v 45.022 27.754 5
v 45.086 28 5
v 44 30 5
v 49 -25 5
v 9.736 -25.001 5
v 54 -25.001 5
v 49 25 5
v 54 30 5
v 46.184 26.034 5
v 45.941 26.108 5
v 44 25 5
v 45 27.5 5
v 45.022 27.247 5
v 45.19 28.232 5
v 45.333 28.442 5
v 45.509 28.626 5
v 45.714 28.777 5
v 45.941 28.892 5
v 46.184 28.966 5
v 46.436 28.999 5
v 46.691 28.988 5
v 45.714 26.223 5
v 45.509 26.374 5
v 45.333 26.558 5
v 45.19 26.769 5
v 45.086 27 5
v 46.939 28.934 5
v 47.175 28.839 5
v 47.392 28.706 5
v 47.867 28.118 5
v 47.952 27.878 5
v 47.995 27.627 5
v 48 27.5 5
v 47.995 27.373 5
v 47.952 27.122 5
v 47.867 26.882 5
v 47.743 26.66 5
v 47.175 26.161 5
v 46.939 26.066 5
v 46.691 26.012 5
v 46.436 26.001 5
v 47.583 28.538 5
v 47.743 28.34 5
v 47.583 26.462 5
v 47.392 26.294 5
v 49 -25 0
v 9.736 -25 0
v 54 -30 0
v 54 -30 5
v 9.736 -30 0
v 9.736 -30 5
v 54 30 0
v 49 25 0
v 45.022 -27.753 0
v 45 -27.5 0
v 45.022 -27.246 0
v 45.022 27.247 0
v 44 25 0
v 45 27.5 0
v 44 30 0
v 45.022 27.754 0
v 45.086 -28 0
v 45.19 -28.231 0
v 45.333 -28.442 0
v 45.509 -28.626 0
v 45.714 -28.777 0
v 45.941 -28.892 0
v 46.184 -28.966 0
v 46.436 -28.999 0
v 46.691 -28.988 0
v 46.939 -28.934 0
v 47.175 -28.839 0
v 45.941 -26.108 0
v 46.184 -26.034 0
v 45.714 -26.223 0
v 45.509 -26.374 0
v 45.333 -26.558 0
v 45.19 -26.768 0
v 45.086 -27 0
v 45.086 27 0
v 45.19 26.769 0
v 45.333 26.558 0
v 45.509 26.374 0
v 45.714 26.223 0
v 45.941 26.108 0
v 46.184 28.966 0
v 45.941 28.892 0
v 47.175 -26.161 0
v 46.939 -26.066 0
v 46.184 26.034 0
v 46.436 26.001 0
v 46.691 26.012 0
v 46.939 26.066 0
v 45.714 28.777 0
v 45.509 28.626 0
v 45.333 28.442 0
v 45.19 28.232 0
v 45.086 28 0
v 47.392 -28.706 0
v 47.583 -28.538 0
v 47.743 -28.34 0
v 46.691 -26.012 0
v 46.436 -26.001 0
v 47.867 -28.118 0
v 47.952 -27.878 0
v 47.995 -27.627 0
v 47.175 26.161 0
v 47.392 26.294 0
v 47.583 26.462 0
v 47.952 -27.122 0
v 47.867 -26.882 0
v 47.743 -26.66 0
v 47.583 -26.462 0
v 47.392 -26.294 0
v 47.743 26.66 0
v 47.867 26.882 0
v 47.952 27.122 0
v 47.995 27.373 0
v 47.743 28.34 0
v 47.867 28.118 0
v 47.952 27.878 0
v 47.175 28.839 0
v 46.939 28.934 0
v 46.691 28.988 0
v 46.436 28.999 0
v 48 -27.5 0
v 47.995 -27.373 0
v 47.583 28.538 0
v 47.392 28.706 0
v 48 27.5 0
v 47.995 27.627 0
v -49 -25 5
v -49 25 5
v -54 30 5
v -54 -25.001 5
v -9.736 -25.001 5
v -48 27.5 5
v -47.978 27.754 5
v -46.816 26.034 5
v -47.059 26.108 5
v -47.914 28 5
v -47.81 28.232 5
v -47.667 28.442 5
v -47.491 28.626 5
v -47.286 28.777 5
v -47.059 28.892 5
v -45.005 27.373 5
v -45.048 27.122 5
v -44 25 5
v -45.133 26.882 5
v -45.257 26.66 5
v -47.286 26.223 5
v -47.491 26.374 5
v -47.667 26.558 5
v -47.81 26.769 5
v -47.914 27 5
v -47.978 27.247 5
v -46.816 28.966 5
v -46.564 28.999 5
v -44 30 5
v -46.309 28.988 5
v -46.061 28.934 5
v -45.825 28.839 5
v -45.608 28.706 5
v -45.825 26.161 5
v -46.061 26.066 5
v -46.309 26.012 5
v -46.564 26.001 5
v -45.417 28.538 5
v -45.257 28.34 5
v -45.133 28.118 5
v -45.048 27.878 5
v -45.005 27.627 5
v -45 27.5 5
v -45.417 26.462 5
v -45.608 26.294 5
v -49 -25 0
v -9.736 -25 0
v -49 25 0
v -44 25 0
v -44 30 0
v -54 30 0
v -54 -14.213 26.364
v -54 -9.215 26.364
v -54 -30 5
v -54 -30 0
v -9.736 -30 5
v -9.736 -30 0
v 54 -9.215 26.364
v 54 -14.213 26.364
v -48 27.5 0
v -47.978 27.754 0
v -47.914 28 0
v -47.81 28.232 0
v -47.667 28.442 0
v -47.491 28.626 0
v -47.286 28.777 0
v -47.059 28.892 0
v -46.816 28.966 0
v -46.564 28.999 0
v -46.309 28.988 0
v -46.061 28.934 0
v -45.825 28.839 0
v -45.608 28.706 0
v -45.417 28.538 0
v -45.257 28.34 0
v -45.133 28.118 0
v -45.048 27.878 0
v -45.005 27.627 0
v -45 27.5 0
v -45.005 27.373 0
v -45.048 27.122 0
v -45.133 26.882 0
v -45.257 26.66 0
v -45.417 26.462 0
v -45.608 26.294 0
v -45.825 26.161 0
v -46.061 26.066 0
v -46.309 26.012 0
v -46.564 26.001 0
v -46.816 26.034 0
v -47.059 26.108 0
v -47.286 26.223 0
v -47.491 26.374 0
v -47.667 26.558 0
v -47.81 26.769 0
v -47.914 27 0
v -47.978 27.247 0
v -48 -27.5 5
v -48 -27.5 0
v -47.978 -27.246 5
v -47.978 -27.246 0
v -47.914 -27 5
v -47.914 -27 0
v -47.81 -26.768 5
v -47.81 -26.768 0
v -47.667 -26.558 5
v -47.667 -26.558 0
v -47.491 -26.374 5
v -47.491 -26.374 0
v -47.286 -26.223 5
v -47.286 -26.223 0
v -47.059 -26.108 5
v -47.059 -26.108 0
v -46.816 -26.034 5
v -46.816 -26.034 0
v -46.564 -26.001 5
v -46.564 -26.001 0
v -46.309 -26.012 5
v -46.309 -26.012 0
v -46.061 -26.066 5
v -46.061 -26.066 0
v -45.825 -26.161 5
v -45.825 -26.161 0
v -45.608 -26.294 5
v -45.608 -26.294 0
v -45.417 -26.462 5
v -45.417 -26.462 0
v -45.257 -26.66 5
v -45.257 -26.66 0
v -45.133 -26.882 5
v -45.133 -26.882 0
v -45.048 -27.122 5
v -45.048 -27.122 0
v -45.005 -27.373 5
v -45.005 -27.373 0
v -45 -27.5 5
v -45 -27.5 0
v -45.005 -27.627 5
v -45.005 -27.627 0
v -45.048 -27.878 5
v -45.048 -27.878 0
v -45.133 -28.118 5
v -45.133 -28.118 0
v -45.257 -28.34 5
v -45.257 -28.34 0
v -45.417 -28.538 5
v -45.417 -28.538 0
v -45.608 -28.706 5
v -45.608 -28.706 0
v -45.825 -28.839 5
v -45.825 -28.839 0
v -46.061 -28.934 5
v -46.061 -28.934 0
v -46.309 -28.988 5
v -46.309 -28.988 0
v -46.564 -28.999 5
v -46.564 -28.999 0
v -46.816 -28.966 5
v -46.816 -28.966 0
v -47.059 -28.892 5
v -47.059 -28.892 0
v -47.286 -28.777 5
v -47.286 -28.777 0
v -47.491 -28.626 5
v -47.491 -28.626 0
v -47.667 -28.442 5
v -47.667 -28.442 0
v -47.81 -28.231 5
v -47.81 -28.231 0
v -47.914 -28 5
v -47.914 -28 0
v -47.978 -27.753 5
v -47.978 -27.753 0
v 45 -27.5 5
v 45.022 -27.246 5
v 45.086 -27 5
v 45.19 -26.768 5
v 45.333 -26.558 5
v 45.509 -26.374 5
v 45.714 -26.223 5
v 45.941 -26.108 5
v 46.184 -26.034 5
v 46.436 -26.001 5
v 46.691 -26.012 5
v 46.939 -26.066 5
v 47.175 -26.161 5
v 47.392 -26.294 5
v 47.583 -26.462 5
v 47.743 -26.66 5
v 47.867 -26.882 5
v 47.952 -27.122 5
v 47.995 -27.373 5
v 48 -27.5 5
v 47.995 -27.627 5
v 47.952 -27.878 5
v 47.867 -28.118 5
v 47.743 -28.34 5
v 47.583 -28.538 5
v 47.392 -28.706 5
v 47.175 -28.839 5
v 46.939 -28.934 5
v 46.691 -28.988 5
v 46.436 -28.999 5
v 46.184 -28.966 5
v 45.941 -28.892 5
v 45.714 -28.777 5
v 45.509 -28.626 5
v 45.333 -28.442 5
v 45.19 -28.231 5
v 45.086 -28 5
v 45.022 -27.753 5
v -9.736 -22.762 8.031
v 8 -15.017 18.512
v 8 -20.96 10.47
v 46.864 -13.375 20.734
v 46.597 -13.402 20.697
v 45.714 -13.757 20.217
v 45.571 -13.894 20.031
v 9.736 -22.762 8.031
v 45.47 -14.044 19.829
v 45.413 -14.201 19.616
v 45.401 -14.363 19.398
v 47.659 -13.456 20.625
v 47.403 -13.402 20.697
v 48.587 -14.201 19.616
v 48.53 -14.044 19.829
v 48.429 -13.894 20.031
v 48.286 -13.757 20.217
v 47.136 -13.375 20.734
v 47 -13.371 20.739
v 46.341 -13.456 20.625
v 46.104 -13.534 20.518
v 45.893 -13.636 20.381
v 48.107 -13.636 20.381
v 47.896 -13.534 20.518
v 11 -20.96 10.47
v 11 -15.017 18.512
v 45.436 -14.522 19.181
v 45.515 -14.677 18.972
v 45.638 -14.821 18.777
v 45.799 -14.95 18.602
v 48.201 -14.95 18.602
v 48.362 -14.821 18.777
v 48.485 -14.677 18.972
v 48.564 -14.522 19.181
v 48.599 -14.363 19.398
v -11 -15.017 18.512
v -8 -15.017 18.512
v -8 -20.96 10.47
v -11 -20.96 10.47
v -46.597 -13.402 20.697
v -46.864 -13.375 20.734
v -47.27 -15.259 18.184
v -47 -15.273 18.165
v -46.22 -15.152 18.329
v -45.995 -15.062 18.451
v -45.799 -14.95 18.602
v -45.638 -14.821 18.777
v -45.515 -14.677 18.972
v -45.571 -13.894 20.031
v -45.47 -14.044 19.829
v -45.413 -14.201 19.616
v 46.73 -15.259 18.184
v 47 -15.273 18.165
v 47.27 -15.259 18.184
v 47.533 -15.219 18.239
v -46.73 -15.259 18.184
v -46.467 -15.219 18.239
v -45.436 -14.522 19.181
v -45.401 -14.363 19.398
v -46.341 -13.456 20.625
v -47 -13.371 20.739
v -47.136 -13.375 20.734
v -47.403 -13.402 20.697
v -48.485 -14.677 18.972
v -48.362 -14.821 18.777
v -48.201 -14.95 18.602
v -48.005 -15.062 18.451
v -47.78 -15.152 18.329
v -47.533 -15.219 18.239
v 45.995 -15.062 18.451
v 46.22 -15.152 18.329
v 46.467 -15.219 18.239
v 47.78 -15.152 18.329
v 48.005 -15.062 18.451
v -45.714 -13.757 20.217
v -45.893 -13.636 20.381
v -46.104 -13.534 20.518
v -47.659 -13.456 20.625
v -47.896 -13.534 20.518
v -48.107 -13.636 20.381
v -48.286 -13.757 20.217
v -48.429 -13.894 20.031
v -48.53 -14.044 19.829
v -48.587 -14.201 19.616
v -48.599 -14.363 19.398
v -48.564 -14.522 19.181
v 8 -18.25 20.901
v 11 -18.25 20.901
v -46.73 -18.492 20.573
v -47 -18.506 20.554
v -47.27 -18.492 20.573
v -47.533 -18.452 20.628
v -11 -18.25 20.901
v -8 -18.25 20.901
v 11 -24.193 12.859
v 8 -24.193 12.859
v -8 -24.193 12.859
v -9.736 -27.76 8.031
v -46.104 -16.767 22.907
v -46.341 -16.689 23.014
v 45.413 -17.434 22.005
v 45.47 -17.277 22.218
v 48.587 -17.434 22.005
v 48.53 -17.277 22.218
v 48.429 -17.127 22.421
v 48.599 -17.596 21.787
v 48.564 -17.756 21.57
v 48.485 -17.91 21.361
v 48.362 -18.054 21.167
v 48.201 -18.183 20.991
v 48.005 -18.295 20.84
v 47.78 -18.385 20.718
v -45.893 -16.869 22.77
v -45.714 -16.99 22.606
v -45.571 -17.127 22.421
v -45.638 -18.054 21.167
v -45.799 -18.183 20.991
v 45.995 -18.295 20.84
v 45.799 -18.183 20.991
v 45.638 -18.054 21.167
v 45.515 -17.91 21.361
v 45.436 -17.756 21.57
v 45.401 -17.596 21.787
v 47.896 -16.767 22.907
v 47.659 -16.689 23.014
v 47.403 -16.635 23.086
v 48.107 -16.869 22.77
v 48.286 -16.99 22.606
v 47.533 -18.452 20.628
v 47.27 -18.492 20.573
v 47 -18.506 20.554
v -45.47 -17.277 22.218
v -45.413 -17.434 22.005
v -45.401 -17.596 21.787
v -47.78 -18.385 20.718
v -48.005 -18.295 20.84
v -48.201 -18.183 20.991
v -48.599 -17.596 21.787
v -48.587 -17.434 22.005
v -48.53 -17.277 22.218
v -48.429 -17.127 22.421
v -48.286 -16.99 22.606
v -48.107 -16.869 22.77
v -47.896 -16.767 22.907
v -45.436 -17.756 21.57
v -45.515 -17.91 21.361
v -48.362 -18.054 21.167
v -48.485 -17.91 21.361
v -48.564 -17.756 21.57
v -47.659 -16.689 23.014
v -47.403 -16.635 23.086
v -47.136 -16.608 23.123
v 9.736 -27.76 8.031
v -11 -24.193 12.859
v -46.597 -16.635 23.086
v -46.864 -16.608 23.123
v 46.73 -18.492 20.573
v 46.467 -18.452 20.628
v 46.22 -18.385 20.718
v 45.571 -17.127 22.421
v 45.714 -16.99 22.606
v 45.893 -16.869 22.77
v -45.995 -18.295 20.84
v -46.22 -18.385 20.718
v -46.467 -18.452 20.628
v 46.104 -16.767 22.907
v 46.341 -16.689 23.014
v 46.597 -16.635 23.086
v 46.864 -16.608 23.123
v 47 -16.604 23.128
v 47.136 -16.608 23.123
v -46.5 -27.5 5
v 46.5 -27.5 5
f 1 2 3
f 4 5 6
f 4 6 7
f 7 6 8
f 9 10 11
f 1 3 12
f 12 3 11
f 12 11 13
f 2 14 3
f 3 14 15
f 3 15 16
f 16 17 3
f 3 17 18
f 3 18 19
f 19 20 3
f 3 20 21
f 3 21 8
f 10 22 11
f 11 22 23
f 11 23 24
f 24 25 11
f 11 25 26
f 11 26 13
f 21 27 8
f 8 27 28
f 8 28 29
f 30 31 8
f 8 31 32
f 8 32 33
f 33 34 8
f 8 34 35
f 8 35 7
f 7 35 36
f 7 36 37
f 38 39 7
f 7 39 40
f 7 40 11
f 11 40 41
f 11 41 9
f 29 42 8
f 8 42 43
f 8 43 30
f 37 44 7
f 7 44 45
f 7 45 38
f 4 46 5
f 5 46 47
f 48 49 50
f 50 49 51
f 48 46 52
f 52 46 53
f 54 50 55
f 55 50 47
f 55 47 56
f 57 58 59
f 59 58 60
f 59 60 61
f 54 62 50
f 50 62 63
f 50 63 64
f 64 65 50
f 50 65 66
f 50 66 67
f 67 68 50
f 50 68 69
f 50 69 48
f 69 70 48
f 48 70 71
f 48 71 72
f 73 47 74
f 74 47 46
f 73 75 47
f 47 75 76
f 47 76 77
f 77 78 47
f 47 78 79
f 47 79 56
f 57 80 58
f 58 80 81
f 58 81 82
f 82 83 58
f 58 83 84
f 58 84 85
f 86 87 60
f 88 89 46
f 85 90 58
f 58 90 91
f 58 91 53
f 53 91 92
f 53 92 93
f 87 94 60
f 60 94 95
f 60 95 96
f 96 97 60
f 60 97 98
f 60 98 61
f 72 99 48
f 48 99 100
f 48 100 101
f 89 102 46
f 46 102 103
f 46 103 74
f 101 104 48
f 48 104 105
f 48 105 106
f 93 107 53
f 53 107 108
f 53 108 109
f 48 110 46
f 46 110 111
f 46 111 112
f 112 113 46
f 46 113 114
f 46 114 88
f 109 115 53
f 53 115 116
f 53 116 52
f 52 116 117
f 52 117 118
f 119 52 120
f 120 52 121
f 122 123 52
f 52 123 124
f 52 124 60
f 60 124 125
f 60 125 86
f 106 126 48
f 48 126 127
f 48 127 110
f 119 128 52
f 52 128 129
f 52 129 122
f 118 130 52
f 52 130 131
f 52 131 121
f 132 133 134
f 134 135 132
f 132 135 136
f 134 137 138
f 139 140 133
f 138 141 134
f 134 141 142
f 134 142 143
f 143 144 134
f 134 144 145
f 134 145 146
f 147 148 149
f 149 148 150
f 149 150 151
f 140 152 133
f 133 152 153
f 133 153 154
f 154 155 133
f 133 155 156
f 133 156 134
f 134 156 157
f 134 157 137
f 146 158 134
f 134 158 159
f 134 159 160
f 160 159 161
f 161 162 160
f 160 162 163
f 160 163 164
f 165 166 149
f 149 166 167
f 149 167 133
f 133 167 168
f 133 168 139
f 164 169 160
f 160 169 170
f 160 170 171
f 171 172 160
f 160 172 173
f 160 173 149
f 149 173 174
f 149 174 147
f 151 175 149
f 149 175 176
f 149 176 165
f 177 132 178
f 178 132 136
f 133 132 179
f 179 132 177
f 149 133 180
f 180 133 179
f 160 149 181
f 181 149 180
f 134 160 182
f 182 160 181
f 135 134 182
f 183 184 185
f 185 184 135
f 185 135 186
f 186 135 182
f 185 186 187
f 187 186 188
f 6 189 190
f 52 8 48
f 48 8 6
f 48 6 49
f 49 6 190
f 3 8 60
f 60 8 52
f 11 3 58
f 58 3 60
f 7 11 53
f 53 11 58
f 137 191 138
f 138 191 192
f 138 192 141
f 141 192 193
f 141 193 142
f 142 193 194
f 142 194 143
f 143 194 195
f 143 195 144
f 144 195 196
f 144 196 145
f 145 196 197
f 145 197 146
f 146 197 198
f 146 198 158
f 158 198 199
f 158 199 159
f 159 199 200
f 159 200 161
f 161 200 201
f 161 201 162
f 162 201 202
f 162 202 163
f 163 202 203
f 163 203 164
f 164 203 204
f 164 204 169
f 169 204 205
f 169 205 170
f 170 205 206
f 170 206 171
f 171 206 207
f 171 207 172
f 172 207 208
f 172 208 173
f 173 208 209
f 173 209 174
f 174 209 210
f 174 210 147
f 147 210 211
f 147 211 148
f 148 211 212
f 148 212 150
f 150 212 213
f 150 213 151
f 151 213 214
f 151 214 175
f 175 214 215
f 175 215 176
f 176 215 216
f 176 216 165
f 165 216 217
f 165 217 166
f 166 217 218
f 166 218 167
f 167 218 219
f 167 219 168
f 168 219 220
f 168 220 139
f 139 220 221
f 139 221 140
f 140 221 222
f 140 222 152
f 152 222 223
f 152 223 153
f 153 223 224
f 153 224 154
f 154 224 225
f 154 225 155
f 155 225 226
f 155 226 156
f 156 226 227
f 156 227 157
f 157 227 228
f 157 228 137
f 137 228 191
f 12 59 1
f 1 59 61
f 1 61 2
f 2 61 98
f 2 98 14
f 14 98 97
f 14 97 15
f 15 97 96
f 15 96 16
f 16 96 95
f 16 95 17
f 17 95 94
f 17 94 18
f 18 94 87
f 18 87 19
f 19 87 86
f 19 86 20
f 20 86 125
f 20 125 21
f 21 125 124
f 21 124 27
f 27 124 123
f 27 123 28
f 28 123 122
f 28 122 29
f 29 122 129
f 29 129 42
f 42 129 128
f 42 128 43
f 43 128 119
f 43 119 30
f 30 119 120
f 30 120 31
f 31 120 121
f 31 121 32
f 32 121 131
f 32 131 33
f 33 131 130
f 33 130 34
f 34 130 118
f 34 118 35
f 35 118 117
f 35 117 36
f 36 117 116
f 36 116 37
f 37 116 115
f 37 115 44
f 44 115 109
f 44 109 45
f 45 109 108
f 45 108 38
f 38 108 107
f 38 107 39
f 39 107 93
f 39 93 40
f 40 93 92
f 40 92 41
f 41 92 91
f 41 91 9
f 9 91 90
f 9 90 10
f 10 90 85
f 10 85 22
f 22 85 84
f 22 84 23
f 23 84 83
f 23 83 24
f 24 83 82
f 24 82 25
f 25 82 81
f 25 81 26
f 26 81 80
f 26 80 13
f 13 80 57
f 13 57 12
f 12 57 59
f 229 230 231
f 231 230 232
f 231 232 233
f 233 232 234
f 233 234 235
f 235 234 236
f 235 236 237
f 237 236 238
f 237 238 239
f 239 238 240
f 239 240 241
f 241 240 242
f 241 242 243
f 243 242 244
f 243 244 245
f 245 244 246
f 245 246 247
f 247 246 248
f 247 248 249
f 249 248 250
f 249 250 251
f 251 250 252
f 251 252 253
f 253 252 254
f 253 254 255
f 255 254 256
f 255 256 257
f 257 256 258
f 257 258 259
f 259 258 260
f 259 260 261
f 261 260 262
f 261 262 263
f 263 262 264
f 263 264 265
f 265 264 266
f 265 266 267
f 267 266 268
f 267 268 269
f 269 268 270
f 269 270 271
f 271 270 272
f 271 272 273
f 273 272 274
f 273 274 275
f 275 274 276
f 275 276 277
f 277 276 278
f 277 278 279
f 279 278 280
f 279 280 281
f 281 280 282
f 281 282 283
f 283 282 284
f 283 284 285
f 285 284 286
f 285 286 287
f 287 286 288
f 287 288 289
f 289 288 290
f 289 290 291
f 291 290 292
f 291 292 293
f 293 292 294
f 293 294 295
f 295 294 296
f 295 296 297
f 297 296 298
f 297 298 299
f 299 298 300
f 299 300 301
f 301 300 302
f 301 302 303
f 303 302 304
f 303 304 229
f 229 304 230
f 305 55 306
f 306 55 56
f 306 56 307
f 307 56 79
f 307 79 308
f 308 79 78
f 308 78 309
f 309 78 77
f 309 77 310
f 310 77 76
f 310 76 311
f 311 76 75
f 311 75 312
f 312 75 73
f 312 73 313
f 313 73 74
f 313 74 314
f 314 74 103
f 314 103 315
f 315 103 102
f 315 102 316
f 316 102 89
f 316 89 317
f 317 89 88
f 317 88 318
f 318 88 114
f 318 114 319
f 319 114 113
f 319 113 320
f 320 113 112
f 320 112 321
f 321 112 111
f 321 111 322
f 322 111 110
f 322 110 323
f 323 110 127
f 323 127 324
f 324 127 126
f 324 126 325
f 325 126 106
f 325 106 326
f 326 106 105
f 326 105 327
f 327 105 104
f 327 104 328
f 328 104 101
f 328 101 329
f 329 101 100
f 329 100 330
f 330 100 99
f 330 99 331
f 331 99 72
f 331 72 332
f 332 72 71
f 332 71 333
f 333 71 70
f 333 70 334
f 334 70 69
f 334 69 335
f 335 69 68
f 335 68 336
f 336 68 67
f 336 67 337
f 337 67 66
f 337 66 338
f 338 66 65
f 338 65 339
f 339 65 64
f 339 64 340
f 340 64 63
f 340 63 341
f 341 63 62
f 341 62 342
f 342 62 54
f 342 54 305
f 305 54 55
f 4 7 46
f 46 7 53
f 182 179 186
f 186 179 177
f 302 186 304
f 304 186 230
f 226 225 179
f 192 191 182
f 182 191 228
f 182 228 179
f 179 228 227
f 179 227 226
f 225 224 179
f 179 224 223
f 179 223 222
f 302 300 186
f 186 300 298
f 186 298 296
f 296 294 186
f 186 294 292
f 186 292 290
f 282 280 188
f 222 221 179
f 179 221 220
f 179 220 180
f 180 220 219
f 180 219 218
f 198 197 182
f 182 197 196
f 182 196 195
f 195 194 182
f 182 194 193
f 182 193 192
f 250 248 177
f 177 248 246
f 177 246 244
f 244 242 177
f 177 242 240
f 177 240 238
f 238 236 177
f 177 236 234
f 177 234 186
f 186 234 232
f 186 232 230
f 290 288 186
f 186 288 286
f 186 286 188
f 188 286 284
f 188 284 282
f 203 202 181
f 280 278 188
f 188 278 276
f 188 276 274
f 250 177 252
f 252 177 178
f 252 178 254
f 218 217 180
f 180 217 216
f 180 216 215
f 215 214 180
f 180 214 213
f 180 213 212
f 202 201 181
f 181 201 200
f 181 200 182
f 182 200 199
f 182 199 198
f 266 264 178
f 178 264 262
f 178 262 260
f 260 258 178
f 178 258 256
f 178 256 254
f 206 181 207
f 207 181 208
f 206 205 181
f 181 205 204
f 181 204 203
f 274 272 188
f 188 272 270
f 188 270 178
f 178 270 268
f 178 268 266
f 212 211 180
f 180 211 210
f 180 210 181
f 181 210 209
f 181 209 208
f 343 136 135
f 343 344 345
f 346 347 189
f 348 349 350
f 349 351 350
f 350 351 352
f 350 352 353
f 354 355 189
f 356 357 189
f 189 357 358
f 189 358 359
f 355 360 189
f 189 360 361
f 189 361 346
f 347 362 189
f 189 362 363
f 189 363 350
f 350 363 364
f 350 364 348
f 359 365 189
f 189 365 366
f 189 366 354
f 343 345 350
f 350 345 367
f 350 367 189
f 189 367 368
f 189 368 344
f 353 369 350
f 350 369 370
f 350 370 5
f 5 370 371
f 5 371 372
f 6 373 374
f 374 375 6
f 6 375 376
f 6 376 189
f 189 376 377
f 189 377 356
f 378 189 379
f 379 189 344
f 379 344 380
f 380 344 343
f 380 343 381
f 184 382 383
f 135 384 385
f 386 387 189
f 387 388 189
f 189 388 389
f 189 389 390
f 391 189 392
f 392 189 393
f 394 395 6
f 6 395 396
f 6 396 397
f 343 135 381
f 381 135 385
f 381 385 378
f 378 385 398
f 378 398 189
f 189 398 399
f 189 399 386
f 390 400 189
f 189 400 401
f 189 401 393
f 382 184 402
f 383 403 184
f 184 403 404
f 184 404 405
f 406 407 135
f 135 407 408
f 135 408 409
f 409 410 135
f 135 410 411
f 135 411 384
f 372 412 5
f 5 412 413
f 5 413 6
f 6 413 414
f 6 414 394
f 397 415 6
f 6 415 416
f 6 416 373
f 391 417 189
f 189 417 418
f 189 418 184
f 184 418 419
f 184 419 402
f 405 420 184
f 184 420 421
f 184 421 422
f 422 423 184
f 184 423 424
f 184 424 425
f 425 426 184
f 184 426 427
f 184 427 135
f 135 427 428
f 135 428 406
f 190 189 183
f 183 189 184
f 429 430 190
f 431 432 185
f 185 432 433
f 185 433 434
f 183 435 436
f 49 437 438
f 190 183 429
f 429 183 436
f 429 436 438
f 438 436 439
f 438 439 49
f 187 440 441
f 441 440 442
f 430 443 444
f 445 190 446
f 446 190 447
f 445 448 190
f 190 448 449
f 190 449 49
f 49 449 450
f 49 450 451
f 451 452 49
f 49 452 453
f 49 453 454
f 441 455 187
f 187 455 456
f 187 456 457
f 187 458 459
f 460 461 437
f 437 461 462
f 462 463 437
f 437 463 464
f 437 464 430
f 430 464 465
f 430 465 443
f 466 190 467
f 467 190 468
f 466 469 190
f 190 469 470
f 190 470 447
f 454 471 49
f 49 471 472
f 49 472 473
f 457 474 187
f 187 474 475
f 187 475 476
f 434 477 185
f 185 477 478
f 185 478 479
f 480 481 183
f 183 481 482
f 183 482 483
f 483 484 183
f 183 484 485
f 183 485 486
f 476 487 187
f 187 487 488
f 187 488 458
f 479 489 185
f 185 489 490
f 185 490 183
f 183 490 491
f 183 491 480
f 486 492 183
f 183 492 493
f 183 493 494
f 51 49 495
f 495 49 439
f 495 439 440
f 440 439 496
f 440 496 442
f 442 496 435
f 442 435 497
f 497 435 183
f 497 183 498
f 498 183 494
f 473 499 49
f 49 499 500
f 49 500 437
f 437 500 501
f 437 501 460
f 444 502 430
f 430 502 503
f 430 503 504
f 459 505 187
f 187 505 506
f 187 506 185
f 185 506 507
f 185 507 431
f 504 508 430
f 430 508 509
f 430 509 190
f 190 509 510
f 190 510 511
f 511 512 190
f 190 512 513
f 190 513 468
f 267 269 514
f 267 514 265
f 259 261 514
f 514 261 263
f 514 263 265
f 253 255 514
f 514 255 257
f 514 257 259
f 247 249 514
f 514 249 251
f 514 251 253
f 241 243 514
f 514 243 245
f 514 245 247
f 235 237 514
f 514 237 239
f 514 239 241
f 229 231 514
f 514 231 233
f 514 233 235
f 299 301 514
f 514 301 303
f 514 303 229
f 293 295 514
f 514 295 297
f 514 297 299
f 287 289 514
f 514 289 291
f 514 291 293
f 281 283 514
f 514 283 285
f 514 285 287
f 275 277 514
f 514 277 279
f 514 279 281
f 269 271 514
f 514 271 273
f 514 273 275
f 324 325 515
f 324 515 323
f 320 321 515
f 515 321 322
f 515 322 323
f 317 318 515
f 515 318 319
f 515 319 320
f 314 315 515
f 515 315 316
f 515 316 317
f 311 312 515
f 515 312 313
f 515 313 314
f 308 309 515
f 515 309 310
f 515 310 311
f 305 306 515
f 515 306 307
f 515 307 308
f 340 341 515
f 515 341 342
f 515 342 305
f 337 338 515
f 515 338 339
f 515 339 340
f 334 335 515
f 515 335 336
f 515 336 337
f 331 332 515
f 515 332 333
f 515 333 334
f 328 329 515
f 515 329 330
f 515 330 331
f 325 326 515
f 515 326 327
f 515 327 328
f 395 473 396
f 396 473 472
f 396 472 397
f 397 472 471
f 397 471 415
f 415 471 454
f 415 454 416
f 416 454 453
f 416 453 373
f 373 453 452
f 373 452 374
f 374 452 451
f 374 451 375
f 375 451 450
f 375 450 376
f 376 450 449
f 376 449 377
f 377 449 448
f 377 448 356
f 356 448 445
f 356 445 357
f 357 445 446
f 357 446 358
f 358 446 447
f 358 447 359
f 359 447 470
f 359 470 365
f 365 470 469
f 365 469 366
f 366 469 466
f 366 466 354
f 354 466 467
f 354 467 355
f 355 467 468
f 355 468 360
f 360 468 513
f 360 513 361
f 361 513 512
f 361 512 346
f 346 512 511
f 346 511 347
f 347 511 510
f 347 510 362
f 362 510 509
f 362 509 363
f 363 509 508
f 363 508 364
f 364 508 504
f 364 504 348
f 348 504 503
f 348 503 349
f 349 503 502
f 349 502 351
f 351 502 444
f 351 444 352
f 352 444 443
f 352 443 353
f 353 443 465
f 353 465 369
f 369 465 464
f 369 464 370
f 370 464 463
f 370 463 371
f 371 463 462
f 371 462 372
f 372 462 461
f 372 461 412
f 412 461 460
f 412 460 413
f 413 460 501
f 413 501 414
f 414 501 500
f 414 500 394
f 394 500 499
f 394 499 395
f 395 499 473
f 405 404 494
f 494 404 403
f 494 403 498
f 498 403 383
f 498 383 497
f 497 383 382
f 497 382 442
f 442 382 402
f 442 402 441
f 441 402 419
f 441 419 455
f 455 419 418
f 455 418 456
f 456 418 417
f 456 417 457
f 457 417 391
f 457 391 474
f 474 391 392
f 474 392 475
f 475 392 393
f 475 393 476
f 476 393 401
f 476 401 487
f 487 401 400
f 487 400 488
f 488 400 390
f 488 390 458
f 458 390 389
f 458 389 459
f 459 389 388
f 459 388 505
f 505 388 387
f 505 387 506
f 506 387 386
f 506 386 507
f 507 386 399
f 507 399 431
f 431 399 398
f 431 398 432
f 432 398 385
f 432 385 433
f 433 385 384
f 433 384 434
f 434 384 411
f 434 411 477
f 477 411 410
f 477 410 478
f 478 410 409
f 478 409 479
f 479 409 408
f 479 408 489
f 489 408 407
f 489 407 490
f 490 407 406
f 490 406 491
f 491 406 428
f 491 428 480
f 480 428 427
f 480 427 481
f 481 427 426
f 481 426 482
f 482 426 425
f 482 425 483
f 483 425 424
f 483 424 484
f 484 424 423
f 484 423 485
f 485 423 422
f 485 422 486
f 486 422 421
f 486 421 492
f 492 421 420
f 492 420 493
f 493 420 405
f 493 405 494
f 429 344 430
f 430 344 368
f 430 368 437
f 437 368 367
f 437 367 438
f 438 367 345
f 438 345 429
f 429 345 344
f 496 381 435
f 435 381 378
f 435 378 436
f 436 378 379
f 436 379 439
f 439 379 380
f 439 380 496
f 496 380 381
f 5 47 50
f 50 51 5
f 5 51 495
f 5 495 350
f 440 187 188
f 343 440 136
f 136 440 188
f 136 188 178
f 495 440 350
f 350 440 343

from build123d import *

# Parameters (mm, degrees)
SKETCH3_R           = 1.5
BOSS_EXTRUDE2_DEPTH = 5
BOSS_EXTRUDE3_DEPTH = 108
CUT_EXTRUDE1_REACH  = 53.226
SKETCH5_R           = 1.6
CUT_EXTRUDE2_REACH  = 53.226
SKETCH6_W           = 3
SKETCH6_H           = 10
SKETCH7_W           = 19.472559222
SKETCH7_H           = 21.170747527
CUT_EXTRUDE3_DEPTH  = 61


with BuildPart() as part:
    # Sketch3 → Boss-Extrude2 (new body)
    with BuildSketch(Plane.XY):
        Polygon((-49, 25), (-44, 25), (-44, 30), (-49, 30), (-54, 30), (-54, 25), (-54, -25), (-54, -30), (-49, -30), (-44, -30), (44, -30), (49, -30), (54, -30), (54, -25), (54, 25), (54, 30), (49, 30), (44, 30), (44, 25), (49, 25), (49, -25), (44, -25), (-44, -25), (-49, -25), align=None)
        with BuildLine():
            ThreePointArc((-46.5, -26), (-45.439339828, -26.439339828), (-45, -27.5))
            ThreePointArc((-45, -27.5), (-47.560660172, -28.560660172), (-46.5, -26))
        make_face(mode=Mode.SUBTRACT)
        with Locations((46.5, -27.5)):
            Circle(SKETCH3_R, mode=Mode.SUBTRACT)
        with BuildLine():
            ThreePointArc((-45, 27.5), (-45.439339828, 26.439339828), (-46.5, 26))
            ThreePointArc((-46.5, 26), (-47.560660172, 28.560660172), (-45, 27.5))
        make_face(mode=Mode.SUBTRACT)
        with Locations((46.5, 27.5)):
            Circle(SKETCH3_R, mode=Mode.SUBTRACT)
    extrude(amount=BOSS_EXTRUDE2_DEPTH)

    # Sketch4 → Boss-Extrude3 (add)
    with BuildSketch(Plane(origin=(54, 0, 0), x_dir=(0, 0, -1), z_dir=(1, 0, 0))):
        Polygon((-5, -30), (-5, -25.001535135), (-26.363936199, -9.214733726), (-26.363936199, -14.213198591), align=None)
    extrude(amount=-BOSS_EXTRUDE3_DEPTH)

    # Sketch5 → Cut-Extrude1 (cut, up to next)
    with BuildSketch(Plane(origin=(0, -21.794194287, 16.104739027), x_dir=(-1, 0, 0), z_dir=(0, -0.804246926, 0.594295282)), mode=Mode.PRIVATE) as cut_extrude1_sk1:
        with Locations((47, -7.13269846)):
            Circle(SKETCH5_R)
    cut_extrude1_tool1 = extrude(cut_extrude1_sk1.sketch, amount=-CUT_EXTRUDE1_REACH, mode=Mode.PRIVATE) & part.part
    add(cut_extrude1_tool1.solids().sort_by_distance((-47, -17.555265, 21.84119))[0], mode=Mode.SUBTRACT)
    # Sketch5 → Cut-Extrude1 (cut, up to next)
    with BuildSketch(Plane(origin=(0, -21.794194287, 16.104739027), x_dir=(-1, 0, 0), z_dir=(0, -0.804246926, 0.594295282)), mode=Mode.PRIVATE) as cut_extrude1_sk2:
        with Locations((-47, -7.13269846)):
            Circle(SKETCH5_R)
    cut_extrude1_tool2 = extrude(cut_extrude1_sk2.sketch, amount=-CUT_EXTRUDE1_REACH, mode=Mode.PRIVATE) & part.part
    add(cut_extrude1_tool2.solids().sort_by_distance((47, -17.555265, 21.84119))[0], mode=Mode.SUBTRACT)

    # Sketch6 → Cut-Extrude2 (cut, up to next)
    with BuildSketch(Plane(origin=(0, -21.794194287, 16.104739027), x_dir=(-1, 0, 0), z_dir=(0, -0.804246926, 0.594295282)), mode=Mode.PRIVATE) as cut_extrude2_sk1:
        with Locations((-9.5, -0.964147651)):
            Rectangle(SKETCH6_W, SKETCH6_H)
    cut_extrude2_tool1 = extrude(cut_extrude2_sk1.sketch, amount=-CUT_EXTRUDE2_REACH, mode=Mode.PRIVATE) & part.part
    add(cut_extrude2_tool1.solids().sort_by_distance((9.5, -21.221206, 16.880152))[0], mode=Mode.SUBTRACT)
    # Sketch6 → Cut-Extrude2 (cut, up to next)
    with BuildSketch(Plane(origin=(0, -21.794194287, 16.104739027), x_dir=(-1, 0, 0), z_dir=(0, -0.804246926, 0.594295282)), mode=Mode.PRIVATE) as cut_extrude2_sk2:
        with Locations((9.5, -0.964147651)):
            Rectangle(SKETCH6_W, SKETCH6_H)
    cut_extrude2_tool2 = extrude(cut_extrude2_sk2.sketch, amount=-CUT_EXTRUDE2_REACH, mode=Mode.PRIVATE) & part.part
    add(cut_extrude2_tool2.solids().sort_by_distance((-9.5, -21.221206, 16.880152))[0], mode=Mode.SUBTRACT)

    # Sketch7 → Cut-Extrude3 (cut, through all)
    with BuildSketch(Plane(origin=(0, -30, 0), x_dir=(-1, 0, 0), z_dir=(0, -1, 0))):
        with Locations((0, 2.554576853)):
            Rectangle(SKETCH7_W, SKETCH7_H)
    extrude(amount=-CUT_EXTRUDE3_DEPTH, mode=Mode.SUBTRACT)


solid = part.part
